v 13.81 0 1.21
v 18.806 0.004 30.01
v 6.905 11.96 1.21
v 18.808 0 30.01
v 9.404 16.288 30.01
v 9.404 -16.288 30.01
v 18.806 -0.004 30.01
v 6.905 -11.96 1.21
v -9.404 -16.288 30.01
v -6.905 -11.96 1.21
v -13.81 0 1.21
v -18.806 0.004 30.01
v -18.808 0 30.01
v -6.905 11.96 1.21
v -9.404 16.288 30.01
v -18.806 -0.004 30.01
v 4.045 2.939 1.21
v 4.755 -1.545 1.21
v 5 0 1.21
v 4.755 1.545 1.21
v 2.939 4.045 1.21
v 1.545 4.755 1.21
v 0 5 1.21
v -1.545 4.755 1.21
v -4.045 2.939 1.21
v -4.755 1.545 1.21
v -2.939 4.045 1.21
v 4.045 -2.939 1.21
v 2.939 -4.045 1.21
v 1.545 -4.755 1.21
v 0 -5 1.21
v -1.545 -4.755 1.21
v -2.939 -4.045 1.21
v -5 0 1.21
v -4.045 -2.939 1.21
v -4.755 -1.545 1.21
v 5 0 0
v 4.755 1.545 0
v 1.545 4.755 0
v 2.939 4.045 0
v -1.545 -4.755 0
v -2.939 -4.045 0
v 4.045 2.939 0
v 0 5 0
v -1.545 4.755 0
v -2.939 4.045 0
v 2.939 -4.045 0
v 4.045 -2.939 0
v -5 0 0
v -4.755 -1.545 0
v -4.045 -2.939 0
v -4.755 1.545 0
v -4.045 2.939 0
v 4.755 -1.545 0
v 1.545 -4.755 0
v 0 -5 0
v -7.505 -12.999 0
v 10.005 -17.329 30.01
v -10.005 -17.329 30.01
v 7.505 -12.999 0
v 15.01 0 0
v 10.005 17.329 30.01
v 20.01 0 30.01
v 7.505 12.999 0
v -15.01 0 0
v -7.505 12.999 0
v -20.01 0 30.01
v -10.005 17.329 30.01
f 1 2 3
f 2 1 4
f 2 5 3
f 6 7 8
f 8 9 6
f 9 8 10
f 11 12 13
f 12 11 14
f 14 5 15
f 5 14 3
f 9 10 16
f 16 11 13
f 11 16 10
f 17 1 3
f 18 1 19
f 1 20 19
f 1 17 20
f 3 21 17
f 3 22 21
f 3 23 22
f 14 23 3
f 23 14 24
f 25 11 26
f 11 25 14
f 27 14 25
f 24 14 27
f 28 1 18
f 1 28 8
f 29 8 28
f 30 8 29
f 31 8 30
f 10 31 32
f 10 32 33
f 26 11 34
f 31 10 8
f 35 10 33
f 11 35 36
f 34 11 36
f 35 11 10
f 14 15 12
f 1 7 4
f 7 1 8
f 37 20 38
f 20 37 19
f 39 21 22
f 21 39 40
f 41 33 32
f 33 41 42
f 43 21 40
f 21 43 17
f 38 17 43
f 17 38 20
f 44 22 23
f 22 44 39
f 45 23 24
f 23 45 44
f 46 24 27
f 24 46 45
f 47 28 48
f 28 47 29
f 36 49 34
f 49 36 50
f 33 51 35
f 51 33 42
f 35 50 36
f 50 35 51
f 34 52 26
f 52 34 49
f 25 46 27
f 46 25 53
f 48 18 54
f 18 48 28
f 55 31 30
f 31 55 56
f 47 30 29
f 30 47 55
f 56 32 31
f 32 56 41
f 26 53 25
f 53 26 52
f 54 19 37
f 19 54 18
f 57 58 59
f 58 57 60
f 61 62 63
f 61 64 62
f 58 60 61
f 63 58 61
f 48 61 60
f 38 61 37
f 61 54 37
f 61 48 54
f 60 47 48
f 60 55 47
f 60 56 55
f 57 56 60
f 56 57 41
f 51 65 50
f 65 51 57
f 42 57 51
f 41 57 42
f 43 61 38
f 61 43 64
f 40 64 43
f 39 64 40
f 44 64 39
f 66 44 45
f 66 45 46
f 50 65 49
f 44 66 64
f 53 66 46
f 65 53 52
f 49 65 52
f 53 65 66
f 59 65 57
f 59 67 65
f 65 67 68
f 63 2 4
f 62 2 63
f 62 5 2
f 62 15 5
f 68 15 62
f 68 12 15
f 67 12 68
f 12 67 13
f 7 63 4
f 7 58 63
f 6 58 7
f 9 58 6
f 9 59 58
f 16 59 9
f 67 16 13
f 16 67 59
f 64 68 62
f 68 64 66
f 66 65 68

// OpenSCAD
// file: ../../../../basics/rounded-edges/rounded-pyramid/rounded-pyramid.scad
/**
 * 
 */
module roundedPyramid(h, 
					  r1, 
					  r2, 
					  cornerRadius,
//TODO: clarify this parameter
					  cylinderFn = 4,					  
					  sides=30, 
					  sidesOnly=false)
{
//TODO: clarify this parameter
	$fn=sides;
	
	minkowski()
	{
		cylinder(h=h, r1=r1, r2=r2, $fn=cylinderFn);
	    
	    if(sidesOnly)
	    {
	    	cylinder(r=cornerRadius);
	    }
	    else
	    {
	    	sphere(r=cornerRadius);
	    	
    	}
	}	
}
// file: ../../base/street-lamp-base.scad
use <../../../basics/rounded-edges/rounded-pyramid/rounded-pyramid.scad>

module streetLampBase(switchHole = "no")
{
	height = 30;
	radius1 = 32;
	radius2 = 28;
	sides=10;

	difference()
	{
		streetLampBase_outerShell(height = height,
		radius1 = radius1,
		radius2 = radius2,
		sides = sides);

		streetLampBase_cutouts(height = height, radius1 = radius1, radius2 = radius2, sides = sides, switchHole = switchHole);
	}
}

module streetLampBase_outerShell(height,
radius1,
radius2,
sides)
{
	color("grey")
	roundedPyramid(h = height,
					r1 = radius1,
					r2 = radius2,
					sides = sides,
					sidesOnly=false);
}

module streetLampBase_cutouts(height, radius1, radius2, sides, switchHole)
{
	// main chamber
	xy = radius2 + 13;
	xyTranslate = -xy / 4.0;
	zTranslate = 2.0;
	xyzScale = 0.9;
	outerShellHeight = height - 2;
	translate([0, 0, zTranslate])
	rotate([0, 0, 0])
	scale([xyzScale, xyzScale, xyzScale])
	streetLampBase_outerShell(height = outerShellHeight, radius1 = radius1, radius2 = radius2, sides = sides);

	// top hole
	cutoutRadius = radius2 - 14;
	cutoutHeight = height + 4;
	translate([0, 0, zTranslate])
	cylinder(r = cutoutRadius, h = cutoutHeight);

	if(switchHole == "yes")
	{
		streetLampBase_cutouts_switch();
	}
}

module streetLampBase_cutouts_switch()
{
	xLength = 50;
	yLength = 12;
	yTranslate = -yLength / 2.0;
	zTranslate = 10;
	translate([0, yTranslate, zTranslate])
	rotate([0,0,45])
	cube([xLength, yLength, 5]);
}
// file: ../street-lamp-glass.scad
use <../base/street-lamp-base.scad>

import("/Users/lando/Versioning/world/betoland-world/3d-relization/models/street-lamps/WillemvD/files/StreetLampGlass.stl");

module streetLampGlass(bottomRadius = 15.01,
					   bottomHoleRadius = 5,
					   height = 30.01,
					   shellThickness = 1.2,
					   sides = 6,
				   	   topRadius = 20.01)
{
	difference()
	{
		// outer shell
		cylinder(h = height, r1=bottomRadius, r2=topRadius, $fn=sides);

		streetLampGlass_cutouts(bottomRadius = bottomRadius,
								bottomHoleRadius = bottomHoleRadius,
								height = height,
								shellThickness = shellThickness,
								sides = sides,
						   	   	topRadius = topRadius);
	}
}

module streetLampGlass_cutouts(bottomRadius,
							   bottomHoleRadius,
							   height,
							   shellThickness,
							   sides,
						   	   topRadius)
{
	// inner cutout
	zTranslate = shellThickness + 0.01;
	translate([0, 0, zTranslate])
	cylinder(h = height - shellThickness,
			 r1 = bottomRadius - shellThickness,
			 r2 = topRadius - shellThickness,
			 $fn = sides);

	 // bottom hole
	 translate([0,0, -0.01])
	 cylinder(h = shellThickness + 0.03,
	 		  r1 = bottomHoleRadius,
		  	  r2 = bottomHoleRadius,
			  $fn = 20);
}
// main file
use <../street-lamp-glass.scad>

//difference()
{
//    %
//    import("/Users/lando/Versioning/world/betoland-world/3d-relization/models/street-lamps/WillemvD/files//StreetLampGlass.stl");

    streetLampGlass();
}
